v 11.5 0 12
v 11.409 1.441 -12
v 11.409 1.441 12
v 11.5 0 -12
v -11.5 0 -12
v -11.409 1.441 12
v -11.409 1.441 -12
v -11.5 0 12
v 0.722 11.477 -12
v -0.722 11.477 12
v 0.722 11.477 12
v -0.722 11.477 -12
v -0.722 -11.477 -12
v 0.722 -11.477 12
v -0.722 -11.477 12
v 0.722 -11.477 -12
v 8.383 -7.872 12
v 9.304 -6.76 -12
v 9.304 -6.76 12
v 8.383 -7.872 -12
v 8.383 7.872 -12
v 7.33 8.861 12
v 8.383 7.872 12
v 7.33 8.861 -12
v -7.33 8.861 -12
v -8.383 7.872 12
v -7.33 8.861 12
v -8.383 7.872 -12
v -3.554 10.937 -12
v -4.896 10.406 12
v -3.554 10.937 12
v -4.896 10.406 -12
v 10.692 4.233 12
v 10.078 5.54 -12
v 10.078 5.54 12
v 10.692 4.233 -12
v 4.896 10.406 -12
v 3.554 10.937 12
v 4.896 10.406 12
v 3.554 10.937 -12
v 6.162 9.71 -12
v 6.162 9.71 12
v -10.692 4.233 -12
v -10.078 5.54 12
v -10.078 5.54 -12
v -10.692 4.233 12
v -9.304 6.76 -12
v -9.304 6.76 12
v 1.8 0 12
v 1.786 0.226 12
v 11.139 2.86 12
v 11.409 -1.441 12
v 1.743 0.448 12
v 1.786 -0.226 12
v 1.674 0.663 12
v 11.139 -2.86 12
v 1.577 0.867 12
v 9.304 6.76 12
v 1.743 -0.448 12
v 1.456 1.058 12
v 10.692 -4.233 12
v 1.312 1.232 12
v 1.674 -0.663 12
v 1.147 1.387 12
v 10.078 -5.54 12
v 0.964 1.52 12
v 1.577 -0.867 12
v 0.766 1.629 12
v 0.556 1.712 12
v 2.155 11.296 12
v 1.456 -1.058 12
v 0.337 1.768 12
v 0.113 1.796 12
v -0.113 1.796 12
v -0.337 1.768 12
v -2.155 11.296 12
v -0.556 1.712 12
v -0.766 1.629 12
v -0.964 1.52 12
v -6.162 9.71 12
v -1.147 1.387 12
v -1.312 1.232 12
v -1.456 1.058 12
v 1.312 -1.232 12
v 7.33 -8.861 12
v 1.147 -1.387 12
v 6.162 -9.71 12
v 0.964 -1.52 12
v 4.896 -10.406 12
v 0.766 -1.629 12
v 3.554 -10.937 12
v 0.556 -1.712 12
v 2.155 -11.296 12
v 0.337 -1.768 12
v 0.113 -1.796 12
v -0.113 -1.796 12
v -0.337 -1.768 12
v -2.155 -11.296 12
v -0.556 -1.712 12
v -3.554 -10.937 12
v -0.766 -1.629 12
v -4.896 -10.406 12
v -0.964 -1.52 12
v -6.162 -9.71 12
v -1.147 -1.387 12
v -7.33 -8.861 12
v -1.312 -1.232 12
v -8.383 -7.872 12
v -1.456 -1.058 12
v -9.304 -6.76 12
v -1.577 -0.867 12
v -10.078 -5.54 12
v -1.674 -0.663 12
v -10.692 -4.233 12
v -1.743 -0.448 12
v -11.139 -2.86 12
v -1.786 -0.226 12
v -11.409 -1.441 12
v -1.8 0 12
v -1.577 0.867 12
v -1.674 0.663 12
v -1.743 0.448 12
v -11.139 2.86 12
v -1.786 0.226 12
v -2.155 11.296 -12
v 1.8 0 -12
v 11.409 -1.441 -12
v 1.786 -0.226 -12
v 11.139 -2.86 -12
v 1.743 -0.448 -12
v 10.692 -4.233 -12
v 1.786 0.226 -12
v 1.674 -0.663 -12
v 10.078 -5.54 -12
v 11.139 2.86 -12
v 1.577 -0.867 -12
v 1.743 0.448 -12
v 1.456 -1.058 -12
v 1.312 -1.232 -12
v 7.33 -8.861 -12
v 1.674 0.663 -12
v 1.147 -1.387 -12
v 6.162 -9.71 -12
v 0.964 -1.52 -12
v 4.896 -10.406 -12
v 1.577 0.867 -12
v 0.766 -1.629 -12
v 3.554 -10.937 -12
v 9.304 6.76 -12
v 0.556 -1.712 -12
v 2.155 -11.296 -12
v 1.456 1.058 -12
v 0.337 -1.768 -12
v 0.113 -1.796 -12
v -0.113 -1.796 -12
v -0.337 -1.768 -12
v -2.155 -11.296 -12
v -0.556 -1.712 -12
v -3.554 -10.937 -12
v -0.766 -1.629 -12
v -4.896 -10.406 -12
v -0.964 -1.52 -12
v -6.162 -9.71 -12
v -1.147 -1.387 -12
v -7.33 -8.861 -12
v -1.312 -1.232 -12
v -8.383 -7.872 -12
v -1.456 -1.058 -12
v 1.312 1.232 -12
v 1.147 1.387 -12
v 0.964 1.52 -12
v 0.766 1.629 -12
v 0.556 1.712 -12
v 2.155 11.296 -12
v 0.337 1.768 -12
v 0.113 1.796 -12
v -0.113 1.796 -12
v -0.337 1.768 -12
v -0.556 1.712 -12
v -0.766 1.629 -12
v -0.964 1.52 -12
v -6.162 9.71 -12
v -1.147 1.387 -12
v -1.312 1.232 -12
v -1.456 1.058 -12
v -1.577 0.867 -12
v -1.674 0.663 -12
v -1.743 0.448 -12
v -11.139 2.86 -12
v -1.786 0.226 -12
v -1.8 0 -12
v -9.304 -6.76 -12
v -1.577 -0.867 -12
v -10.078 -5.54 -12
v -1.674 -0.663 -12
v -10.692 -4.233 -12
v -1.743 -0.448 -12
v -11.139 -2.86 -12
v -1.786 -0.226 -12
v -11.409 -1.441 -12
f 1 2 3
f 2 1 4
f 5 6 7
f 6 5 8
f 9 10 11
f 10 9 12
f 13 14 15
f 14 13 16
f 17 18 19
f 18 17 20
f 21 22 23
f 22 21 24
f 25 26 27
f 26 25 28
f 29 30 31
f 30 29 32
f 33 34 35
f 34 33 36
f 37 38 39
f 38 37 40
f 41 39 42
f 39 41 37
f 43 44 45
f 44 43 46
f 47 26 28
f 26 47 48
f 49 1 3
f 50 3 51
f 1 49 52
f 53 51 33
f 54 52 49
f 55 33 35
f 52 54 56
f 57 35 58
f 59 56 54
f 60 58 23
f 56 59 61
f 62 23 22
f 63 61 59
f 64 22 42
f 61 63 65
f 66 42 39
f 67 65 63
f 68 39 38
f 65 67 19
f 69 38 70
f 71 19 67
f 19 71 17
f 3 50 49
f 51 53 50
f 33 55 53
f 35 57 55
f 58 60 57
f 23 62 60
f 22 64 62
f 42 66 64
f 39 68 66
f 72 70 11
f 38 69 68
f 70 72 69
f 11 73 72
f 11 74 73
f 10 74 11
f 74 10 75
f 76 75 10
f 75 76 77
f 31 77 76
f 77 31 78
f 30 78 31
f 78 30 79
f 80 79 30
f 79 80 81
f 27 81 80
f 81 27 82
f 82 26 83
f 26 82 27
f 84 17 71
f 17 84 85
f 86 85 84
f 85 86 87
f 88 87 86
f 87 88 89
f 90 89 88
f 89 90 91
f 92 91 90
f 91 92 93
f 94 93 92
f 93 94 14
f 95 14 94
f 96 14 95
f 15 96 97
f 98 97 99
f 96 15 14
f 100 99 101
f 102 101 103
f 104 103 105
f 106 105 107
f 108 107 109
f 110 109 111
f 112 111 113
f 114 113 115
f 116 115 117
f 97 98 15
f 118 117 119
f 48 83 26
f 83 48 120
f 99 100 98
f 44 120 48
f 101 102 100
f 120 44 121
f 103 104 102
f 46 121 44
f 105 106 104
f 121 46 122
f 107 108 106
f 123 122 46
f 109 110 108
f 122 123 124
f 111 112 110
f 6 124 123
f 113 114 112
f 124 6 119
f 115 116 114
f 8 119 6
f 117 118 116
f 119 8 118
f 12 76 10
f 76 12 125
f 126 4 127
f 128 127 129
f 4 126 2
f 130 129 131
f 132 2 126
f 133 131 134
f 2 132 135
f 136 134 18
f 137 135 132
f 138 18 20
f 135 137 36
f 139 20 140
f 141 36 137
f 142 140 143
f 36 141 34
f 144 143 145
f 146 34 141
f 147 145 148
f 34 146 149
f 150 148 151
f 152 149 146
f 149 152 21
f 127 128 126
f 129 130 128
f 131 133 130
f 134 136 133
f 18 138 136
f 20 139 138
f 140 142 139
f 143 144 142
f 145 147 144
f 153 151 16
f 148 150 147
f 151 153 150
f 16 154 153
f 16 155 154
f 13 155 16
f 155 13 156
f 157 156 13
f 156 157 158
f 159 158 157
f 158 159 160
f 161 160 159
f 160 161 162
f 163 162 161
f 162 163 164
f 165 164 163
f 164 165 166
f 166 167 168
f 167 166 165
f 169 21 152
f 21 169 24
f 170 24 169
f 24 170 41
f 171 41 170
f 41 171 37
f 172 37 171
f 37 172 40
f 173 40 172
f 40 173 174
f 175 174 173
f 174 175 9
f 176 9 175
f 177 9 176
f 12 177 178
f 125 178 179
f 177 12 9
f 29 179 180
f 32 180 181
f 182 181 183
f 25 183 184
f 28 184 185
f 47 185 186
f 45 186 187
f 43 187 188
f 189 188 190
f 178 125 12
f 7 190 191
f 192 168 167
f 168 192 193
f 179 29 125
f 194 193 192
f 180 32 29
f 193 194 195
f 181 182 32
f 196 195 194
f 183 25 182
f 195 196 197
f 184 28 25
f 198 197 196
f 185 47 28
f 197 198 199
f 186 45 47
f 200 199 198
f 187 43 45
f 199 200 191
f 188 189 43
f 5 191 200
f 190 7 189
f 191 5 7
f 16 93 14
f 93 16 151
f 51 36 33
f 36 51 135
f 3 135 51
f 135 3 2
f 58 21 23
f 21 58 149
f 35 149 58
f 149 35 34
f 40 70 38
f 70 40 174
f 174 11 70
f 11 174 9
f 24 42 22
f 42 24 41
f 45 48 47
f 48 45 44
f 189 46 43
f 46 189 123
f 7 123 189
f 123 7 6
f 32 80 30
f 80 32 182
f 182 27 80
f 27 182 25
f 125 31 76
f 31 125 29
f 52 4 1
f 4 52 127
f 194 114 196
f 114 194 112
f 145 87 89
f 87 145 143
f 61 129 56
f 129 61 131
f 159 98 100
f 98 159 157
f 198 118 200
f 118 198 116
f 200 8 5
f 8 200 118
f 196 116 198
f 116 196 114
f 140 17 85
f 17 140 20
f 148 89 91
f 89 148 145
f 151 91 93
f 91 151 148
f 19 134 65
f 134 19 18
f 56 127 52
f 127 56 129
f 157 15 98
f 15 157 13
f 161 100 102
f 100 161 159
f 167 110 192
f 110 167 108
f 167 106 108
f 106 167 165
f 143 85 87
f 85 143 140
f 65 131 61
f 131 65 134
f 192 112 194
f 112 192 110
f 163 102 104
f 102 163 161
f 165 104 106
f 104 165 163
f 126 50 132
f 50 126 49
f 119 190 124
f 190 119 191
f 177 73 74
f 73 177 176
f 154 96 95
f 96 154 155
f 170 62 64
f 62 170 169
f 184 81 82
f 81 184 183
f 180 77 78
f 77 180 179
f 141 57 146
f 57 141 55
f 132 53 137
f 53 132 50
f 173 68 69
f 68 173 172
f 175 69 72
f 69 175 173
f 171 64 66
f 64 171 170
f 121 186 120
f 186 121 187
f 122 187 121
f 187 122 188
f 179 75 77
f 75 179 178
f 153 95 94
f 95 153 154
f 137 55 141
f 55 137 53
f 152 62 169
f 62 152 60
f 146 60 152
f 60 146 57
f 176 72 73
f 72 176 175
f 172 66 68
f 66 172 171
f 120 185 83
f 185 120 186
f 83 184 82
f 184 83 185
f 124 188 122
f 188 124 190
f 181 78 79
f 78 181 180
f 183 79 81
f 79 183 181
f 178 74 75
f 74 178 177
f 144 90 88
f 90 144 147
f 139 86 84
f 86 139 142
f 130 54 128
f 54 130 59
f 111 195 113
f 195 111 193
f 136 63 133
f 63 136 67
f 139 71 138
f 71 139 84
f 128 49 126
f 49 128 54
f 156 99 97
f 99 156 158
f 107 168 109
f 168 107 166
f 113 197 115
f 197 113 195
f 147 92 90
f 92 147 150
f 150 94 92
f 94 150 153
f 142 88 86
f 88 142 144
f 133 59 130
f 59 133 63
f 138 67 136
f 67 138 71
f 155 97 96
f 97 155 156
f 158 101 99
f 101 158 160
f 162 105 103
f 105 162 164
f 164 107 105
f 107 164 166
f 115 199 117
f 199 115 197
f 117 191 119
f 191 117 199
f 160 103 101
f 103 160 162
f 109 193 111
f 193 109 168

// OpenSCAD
$fn = 50;


difference() {
	union() {
		translate(v = [0, 0, -12.0000000000]) {
			cylinder(h = 24, r = 11.5000000000);
		}
	}
	union() {
		translate(v = [0, 0, -100.0000000000]) {
			cylinder(h = 200, r = 1.8000000000);
		}
	}
}
